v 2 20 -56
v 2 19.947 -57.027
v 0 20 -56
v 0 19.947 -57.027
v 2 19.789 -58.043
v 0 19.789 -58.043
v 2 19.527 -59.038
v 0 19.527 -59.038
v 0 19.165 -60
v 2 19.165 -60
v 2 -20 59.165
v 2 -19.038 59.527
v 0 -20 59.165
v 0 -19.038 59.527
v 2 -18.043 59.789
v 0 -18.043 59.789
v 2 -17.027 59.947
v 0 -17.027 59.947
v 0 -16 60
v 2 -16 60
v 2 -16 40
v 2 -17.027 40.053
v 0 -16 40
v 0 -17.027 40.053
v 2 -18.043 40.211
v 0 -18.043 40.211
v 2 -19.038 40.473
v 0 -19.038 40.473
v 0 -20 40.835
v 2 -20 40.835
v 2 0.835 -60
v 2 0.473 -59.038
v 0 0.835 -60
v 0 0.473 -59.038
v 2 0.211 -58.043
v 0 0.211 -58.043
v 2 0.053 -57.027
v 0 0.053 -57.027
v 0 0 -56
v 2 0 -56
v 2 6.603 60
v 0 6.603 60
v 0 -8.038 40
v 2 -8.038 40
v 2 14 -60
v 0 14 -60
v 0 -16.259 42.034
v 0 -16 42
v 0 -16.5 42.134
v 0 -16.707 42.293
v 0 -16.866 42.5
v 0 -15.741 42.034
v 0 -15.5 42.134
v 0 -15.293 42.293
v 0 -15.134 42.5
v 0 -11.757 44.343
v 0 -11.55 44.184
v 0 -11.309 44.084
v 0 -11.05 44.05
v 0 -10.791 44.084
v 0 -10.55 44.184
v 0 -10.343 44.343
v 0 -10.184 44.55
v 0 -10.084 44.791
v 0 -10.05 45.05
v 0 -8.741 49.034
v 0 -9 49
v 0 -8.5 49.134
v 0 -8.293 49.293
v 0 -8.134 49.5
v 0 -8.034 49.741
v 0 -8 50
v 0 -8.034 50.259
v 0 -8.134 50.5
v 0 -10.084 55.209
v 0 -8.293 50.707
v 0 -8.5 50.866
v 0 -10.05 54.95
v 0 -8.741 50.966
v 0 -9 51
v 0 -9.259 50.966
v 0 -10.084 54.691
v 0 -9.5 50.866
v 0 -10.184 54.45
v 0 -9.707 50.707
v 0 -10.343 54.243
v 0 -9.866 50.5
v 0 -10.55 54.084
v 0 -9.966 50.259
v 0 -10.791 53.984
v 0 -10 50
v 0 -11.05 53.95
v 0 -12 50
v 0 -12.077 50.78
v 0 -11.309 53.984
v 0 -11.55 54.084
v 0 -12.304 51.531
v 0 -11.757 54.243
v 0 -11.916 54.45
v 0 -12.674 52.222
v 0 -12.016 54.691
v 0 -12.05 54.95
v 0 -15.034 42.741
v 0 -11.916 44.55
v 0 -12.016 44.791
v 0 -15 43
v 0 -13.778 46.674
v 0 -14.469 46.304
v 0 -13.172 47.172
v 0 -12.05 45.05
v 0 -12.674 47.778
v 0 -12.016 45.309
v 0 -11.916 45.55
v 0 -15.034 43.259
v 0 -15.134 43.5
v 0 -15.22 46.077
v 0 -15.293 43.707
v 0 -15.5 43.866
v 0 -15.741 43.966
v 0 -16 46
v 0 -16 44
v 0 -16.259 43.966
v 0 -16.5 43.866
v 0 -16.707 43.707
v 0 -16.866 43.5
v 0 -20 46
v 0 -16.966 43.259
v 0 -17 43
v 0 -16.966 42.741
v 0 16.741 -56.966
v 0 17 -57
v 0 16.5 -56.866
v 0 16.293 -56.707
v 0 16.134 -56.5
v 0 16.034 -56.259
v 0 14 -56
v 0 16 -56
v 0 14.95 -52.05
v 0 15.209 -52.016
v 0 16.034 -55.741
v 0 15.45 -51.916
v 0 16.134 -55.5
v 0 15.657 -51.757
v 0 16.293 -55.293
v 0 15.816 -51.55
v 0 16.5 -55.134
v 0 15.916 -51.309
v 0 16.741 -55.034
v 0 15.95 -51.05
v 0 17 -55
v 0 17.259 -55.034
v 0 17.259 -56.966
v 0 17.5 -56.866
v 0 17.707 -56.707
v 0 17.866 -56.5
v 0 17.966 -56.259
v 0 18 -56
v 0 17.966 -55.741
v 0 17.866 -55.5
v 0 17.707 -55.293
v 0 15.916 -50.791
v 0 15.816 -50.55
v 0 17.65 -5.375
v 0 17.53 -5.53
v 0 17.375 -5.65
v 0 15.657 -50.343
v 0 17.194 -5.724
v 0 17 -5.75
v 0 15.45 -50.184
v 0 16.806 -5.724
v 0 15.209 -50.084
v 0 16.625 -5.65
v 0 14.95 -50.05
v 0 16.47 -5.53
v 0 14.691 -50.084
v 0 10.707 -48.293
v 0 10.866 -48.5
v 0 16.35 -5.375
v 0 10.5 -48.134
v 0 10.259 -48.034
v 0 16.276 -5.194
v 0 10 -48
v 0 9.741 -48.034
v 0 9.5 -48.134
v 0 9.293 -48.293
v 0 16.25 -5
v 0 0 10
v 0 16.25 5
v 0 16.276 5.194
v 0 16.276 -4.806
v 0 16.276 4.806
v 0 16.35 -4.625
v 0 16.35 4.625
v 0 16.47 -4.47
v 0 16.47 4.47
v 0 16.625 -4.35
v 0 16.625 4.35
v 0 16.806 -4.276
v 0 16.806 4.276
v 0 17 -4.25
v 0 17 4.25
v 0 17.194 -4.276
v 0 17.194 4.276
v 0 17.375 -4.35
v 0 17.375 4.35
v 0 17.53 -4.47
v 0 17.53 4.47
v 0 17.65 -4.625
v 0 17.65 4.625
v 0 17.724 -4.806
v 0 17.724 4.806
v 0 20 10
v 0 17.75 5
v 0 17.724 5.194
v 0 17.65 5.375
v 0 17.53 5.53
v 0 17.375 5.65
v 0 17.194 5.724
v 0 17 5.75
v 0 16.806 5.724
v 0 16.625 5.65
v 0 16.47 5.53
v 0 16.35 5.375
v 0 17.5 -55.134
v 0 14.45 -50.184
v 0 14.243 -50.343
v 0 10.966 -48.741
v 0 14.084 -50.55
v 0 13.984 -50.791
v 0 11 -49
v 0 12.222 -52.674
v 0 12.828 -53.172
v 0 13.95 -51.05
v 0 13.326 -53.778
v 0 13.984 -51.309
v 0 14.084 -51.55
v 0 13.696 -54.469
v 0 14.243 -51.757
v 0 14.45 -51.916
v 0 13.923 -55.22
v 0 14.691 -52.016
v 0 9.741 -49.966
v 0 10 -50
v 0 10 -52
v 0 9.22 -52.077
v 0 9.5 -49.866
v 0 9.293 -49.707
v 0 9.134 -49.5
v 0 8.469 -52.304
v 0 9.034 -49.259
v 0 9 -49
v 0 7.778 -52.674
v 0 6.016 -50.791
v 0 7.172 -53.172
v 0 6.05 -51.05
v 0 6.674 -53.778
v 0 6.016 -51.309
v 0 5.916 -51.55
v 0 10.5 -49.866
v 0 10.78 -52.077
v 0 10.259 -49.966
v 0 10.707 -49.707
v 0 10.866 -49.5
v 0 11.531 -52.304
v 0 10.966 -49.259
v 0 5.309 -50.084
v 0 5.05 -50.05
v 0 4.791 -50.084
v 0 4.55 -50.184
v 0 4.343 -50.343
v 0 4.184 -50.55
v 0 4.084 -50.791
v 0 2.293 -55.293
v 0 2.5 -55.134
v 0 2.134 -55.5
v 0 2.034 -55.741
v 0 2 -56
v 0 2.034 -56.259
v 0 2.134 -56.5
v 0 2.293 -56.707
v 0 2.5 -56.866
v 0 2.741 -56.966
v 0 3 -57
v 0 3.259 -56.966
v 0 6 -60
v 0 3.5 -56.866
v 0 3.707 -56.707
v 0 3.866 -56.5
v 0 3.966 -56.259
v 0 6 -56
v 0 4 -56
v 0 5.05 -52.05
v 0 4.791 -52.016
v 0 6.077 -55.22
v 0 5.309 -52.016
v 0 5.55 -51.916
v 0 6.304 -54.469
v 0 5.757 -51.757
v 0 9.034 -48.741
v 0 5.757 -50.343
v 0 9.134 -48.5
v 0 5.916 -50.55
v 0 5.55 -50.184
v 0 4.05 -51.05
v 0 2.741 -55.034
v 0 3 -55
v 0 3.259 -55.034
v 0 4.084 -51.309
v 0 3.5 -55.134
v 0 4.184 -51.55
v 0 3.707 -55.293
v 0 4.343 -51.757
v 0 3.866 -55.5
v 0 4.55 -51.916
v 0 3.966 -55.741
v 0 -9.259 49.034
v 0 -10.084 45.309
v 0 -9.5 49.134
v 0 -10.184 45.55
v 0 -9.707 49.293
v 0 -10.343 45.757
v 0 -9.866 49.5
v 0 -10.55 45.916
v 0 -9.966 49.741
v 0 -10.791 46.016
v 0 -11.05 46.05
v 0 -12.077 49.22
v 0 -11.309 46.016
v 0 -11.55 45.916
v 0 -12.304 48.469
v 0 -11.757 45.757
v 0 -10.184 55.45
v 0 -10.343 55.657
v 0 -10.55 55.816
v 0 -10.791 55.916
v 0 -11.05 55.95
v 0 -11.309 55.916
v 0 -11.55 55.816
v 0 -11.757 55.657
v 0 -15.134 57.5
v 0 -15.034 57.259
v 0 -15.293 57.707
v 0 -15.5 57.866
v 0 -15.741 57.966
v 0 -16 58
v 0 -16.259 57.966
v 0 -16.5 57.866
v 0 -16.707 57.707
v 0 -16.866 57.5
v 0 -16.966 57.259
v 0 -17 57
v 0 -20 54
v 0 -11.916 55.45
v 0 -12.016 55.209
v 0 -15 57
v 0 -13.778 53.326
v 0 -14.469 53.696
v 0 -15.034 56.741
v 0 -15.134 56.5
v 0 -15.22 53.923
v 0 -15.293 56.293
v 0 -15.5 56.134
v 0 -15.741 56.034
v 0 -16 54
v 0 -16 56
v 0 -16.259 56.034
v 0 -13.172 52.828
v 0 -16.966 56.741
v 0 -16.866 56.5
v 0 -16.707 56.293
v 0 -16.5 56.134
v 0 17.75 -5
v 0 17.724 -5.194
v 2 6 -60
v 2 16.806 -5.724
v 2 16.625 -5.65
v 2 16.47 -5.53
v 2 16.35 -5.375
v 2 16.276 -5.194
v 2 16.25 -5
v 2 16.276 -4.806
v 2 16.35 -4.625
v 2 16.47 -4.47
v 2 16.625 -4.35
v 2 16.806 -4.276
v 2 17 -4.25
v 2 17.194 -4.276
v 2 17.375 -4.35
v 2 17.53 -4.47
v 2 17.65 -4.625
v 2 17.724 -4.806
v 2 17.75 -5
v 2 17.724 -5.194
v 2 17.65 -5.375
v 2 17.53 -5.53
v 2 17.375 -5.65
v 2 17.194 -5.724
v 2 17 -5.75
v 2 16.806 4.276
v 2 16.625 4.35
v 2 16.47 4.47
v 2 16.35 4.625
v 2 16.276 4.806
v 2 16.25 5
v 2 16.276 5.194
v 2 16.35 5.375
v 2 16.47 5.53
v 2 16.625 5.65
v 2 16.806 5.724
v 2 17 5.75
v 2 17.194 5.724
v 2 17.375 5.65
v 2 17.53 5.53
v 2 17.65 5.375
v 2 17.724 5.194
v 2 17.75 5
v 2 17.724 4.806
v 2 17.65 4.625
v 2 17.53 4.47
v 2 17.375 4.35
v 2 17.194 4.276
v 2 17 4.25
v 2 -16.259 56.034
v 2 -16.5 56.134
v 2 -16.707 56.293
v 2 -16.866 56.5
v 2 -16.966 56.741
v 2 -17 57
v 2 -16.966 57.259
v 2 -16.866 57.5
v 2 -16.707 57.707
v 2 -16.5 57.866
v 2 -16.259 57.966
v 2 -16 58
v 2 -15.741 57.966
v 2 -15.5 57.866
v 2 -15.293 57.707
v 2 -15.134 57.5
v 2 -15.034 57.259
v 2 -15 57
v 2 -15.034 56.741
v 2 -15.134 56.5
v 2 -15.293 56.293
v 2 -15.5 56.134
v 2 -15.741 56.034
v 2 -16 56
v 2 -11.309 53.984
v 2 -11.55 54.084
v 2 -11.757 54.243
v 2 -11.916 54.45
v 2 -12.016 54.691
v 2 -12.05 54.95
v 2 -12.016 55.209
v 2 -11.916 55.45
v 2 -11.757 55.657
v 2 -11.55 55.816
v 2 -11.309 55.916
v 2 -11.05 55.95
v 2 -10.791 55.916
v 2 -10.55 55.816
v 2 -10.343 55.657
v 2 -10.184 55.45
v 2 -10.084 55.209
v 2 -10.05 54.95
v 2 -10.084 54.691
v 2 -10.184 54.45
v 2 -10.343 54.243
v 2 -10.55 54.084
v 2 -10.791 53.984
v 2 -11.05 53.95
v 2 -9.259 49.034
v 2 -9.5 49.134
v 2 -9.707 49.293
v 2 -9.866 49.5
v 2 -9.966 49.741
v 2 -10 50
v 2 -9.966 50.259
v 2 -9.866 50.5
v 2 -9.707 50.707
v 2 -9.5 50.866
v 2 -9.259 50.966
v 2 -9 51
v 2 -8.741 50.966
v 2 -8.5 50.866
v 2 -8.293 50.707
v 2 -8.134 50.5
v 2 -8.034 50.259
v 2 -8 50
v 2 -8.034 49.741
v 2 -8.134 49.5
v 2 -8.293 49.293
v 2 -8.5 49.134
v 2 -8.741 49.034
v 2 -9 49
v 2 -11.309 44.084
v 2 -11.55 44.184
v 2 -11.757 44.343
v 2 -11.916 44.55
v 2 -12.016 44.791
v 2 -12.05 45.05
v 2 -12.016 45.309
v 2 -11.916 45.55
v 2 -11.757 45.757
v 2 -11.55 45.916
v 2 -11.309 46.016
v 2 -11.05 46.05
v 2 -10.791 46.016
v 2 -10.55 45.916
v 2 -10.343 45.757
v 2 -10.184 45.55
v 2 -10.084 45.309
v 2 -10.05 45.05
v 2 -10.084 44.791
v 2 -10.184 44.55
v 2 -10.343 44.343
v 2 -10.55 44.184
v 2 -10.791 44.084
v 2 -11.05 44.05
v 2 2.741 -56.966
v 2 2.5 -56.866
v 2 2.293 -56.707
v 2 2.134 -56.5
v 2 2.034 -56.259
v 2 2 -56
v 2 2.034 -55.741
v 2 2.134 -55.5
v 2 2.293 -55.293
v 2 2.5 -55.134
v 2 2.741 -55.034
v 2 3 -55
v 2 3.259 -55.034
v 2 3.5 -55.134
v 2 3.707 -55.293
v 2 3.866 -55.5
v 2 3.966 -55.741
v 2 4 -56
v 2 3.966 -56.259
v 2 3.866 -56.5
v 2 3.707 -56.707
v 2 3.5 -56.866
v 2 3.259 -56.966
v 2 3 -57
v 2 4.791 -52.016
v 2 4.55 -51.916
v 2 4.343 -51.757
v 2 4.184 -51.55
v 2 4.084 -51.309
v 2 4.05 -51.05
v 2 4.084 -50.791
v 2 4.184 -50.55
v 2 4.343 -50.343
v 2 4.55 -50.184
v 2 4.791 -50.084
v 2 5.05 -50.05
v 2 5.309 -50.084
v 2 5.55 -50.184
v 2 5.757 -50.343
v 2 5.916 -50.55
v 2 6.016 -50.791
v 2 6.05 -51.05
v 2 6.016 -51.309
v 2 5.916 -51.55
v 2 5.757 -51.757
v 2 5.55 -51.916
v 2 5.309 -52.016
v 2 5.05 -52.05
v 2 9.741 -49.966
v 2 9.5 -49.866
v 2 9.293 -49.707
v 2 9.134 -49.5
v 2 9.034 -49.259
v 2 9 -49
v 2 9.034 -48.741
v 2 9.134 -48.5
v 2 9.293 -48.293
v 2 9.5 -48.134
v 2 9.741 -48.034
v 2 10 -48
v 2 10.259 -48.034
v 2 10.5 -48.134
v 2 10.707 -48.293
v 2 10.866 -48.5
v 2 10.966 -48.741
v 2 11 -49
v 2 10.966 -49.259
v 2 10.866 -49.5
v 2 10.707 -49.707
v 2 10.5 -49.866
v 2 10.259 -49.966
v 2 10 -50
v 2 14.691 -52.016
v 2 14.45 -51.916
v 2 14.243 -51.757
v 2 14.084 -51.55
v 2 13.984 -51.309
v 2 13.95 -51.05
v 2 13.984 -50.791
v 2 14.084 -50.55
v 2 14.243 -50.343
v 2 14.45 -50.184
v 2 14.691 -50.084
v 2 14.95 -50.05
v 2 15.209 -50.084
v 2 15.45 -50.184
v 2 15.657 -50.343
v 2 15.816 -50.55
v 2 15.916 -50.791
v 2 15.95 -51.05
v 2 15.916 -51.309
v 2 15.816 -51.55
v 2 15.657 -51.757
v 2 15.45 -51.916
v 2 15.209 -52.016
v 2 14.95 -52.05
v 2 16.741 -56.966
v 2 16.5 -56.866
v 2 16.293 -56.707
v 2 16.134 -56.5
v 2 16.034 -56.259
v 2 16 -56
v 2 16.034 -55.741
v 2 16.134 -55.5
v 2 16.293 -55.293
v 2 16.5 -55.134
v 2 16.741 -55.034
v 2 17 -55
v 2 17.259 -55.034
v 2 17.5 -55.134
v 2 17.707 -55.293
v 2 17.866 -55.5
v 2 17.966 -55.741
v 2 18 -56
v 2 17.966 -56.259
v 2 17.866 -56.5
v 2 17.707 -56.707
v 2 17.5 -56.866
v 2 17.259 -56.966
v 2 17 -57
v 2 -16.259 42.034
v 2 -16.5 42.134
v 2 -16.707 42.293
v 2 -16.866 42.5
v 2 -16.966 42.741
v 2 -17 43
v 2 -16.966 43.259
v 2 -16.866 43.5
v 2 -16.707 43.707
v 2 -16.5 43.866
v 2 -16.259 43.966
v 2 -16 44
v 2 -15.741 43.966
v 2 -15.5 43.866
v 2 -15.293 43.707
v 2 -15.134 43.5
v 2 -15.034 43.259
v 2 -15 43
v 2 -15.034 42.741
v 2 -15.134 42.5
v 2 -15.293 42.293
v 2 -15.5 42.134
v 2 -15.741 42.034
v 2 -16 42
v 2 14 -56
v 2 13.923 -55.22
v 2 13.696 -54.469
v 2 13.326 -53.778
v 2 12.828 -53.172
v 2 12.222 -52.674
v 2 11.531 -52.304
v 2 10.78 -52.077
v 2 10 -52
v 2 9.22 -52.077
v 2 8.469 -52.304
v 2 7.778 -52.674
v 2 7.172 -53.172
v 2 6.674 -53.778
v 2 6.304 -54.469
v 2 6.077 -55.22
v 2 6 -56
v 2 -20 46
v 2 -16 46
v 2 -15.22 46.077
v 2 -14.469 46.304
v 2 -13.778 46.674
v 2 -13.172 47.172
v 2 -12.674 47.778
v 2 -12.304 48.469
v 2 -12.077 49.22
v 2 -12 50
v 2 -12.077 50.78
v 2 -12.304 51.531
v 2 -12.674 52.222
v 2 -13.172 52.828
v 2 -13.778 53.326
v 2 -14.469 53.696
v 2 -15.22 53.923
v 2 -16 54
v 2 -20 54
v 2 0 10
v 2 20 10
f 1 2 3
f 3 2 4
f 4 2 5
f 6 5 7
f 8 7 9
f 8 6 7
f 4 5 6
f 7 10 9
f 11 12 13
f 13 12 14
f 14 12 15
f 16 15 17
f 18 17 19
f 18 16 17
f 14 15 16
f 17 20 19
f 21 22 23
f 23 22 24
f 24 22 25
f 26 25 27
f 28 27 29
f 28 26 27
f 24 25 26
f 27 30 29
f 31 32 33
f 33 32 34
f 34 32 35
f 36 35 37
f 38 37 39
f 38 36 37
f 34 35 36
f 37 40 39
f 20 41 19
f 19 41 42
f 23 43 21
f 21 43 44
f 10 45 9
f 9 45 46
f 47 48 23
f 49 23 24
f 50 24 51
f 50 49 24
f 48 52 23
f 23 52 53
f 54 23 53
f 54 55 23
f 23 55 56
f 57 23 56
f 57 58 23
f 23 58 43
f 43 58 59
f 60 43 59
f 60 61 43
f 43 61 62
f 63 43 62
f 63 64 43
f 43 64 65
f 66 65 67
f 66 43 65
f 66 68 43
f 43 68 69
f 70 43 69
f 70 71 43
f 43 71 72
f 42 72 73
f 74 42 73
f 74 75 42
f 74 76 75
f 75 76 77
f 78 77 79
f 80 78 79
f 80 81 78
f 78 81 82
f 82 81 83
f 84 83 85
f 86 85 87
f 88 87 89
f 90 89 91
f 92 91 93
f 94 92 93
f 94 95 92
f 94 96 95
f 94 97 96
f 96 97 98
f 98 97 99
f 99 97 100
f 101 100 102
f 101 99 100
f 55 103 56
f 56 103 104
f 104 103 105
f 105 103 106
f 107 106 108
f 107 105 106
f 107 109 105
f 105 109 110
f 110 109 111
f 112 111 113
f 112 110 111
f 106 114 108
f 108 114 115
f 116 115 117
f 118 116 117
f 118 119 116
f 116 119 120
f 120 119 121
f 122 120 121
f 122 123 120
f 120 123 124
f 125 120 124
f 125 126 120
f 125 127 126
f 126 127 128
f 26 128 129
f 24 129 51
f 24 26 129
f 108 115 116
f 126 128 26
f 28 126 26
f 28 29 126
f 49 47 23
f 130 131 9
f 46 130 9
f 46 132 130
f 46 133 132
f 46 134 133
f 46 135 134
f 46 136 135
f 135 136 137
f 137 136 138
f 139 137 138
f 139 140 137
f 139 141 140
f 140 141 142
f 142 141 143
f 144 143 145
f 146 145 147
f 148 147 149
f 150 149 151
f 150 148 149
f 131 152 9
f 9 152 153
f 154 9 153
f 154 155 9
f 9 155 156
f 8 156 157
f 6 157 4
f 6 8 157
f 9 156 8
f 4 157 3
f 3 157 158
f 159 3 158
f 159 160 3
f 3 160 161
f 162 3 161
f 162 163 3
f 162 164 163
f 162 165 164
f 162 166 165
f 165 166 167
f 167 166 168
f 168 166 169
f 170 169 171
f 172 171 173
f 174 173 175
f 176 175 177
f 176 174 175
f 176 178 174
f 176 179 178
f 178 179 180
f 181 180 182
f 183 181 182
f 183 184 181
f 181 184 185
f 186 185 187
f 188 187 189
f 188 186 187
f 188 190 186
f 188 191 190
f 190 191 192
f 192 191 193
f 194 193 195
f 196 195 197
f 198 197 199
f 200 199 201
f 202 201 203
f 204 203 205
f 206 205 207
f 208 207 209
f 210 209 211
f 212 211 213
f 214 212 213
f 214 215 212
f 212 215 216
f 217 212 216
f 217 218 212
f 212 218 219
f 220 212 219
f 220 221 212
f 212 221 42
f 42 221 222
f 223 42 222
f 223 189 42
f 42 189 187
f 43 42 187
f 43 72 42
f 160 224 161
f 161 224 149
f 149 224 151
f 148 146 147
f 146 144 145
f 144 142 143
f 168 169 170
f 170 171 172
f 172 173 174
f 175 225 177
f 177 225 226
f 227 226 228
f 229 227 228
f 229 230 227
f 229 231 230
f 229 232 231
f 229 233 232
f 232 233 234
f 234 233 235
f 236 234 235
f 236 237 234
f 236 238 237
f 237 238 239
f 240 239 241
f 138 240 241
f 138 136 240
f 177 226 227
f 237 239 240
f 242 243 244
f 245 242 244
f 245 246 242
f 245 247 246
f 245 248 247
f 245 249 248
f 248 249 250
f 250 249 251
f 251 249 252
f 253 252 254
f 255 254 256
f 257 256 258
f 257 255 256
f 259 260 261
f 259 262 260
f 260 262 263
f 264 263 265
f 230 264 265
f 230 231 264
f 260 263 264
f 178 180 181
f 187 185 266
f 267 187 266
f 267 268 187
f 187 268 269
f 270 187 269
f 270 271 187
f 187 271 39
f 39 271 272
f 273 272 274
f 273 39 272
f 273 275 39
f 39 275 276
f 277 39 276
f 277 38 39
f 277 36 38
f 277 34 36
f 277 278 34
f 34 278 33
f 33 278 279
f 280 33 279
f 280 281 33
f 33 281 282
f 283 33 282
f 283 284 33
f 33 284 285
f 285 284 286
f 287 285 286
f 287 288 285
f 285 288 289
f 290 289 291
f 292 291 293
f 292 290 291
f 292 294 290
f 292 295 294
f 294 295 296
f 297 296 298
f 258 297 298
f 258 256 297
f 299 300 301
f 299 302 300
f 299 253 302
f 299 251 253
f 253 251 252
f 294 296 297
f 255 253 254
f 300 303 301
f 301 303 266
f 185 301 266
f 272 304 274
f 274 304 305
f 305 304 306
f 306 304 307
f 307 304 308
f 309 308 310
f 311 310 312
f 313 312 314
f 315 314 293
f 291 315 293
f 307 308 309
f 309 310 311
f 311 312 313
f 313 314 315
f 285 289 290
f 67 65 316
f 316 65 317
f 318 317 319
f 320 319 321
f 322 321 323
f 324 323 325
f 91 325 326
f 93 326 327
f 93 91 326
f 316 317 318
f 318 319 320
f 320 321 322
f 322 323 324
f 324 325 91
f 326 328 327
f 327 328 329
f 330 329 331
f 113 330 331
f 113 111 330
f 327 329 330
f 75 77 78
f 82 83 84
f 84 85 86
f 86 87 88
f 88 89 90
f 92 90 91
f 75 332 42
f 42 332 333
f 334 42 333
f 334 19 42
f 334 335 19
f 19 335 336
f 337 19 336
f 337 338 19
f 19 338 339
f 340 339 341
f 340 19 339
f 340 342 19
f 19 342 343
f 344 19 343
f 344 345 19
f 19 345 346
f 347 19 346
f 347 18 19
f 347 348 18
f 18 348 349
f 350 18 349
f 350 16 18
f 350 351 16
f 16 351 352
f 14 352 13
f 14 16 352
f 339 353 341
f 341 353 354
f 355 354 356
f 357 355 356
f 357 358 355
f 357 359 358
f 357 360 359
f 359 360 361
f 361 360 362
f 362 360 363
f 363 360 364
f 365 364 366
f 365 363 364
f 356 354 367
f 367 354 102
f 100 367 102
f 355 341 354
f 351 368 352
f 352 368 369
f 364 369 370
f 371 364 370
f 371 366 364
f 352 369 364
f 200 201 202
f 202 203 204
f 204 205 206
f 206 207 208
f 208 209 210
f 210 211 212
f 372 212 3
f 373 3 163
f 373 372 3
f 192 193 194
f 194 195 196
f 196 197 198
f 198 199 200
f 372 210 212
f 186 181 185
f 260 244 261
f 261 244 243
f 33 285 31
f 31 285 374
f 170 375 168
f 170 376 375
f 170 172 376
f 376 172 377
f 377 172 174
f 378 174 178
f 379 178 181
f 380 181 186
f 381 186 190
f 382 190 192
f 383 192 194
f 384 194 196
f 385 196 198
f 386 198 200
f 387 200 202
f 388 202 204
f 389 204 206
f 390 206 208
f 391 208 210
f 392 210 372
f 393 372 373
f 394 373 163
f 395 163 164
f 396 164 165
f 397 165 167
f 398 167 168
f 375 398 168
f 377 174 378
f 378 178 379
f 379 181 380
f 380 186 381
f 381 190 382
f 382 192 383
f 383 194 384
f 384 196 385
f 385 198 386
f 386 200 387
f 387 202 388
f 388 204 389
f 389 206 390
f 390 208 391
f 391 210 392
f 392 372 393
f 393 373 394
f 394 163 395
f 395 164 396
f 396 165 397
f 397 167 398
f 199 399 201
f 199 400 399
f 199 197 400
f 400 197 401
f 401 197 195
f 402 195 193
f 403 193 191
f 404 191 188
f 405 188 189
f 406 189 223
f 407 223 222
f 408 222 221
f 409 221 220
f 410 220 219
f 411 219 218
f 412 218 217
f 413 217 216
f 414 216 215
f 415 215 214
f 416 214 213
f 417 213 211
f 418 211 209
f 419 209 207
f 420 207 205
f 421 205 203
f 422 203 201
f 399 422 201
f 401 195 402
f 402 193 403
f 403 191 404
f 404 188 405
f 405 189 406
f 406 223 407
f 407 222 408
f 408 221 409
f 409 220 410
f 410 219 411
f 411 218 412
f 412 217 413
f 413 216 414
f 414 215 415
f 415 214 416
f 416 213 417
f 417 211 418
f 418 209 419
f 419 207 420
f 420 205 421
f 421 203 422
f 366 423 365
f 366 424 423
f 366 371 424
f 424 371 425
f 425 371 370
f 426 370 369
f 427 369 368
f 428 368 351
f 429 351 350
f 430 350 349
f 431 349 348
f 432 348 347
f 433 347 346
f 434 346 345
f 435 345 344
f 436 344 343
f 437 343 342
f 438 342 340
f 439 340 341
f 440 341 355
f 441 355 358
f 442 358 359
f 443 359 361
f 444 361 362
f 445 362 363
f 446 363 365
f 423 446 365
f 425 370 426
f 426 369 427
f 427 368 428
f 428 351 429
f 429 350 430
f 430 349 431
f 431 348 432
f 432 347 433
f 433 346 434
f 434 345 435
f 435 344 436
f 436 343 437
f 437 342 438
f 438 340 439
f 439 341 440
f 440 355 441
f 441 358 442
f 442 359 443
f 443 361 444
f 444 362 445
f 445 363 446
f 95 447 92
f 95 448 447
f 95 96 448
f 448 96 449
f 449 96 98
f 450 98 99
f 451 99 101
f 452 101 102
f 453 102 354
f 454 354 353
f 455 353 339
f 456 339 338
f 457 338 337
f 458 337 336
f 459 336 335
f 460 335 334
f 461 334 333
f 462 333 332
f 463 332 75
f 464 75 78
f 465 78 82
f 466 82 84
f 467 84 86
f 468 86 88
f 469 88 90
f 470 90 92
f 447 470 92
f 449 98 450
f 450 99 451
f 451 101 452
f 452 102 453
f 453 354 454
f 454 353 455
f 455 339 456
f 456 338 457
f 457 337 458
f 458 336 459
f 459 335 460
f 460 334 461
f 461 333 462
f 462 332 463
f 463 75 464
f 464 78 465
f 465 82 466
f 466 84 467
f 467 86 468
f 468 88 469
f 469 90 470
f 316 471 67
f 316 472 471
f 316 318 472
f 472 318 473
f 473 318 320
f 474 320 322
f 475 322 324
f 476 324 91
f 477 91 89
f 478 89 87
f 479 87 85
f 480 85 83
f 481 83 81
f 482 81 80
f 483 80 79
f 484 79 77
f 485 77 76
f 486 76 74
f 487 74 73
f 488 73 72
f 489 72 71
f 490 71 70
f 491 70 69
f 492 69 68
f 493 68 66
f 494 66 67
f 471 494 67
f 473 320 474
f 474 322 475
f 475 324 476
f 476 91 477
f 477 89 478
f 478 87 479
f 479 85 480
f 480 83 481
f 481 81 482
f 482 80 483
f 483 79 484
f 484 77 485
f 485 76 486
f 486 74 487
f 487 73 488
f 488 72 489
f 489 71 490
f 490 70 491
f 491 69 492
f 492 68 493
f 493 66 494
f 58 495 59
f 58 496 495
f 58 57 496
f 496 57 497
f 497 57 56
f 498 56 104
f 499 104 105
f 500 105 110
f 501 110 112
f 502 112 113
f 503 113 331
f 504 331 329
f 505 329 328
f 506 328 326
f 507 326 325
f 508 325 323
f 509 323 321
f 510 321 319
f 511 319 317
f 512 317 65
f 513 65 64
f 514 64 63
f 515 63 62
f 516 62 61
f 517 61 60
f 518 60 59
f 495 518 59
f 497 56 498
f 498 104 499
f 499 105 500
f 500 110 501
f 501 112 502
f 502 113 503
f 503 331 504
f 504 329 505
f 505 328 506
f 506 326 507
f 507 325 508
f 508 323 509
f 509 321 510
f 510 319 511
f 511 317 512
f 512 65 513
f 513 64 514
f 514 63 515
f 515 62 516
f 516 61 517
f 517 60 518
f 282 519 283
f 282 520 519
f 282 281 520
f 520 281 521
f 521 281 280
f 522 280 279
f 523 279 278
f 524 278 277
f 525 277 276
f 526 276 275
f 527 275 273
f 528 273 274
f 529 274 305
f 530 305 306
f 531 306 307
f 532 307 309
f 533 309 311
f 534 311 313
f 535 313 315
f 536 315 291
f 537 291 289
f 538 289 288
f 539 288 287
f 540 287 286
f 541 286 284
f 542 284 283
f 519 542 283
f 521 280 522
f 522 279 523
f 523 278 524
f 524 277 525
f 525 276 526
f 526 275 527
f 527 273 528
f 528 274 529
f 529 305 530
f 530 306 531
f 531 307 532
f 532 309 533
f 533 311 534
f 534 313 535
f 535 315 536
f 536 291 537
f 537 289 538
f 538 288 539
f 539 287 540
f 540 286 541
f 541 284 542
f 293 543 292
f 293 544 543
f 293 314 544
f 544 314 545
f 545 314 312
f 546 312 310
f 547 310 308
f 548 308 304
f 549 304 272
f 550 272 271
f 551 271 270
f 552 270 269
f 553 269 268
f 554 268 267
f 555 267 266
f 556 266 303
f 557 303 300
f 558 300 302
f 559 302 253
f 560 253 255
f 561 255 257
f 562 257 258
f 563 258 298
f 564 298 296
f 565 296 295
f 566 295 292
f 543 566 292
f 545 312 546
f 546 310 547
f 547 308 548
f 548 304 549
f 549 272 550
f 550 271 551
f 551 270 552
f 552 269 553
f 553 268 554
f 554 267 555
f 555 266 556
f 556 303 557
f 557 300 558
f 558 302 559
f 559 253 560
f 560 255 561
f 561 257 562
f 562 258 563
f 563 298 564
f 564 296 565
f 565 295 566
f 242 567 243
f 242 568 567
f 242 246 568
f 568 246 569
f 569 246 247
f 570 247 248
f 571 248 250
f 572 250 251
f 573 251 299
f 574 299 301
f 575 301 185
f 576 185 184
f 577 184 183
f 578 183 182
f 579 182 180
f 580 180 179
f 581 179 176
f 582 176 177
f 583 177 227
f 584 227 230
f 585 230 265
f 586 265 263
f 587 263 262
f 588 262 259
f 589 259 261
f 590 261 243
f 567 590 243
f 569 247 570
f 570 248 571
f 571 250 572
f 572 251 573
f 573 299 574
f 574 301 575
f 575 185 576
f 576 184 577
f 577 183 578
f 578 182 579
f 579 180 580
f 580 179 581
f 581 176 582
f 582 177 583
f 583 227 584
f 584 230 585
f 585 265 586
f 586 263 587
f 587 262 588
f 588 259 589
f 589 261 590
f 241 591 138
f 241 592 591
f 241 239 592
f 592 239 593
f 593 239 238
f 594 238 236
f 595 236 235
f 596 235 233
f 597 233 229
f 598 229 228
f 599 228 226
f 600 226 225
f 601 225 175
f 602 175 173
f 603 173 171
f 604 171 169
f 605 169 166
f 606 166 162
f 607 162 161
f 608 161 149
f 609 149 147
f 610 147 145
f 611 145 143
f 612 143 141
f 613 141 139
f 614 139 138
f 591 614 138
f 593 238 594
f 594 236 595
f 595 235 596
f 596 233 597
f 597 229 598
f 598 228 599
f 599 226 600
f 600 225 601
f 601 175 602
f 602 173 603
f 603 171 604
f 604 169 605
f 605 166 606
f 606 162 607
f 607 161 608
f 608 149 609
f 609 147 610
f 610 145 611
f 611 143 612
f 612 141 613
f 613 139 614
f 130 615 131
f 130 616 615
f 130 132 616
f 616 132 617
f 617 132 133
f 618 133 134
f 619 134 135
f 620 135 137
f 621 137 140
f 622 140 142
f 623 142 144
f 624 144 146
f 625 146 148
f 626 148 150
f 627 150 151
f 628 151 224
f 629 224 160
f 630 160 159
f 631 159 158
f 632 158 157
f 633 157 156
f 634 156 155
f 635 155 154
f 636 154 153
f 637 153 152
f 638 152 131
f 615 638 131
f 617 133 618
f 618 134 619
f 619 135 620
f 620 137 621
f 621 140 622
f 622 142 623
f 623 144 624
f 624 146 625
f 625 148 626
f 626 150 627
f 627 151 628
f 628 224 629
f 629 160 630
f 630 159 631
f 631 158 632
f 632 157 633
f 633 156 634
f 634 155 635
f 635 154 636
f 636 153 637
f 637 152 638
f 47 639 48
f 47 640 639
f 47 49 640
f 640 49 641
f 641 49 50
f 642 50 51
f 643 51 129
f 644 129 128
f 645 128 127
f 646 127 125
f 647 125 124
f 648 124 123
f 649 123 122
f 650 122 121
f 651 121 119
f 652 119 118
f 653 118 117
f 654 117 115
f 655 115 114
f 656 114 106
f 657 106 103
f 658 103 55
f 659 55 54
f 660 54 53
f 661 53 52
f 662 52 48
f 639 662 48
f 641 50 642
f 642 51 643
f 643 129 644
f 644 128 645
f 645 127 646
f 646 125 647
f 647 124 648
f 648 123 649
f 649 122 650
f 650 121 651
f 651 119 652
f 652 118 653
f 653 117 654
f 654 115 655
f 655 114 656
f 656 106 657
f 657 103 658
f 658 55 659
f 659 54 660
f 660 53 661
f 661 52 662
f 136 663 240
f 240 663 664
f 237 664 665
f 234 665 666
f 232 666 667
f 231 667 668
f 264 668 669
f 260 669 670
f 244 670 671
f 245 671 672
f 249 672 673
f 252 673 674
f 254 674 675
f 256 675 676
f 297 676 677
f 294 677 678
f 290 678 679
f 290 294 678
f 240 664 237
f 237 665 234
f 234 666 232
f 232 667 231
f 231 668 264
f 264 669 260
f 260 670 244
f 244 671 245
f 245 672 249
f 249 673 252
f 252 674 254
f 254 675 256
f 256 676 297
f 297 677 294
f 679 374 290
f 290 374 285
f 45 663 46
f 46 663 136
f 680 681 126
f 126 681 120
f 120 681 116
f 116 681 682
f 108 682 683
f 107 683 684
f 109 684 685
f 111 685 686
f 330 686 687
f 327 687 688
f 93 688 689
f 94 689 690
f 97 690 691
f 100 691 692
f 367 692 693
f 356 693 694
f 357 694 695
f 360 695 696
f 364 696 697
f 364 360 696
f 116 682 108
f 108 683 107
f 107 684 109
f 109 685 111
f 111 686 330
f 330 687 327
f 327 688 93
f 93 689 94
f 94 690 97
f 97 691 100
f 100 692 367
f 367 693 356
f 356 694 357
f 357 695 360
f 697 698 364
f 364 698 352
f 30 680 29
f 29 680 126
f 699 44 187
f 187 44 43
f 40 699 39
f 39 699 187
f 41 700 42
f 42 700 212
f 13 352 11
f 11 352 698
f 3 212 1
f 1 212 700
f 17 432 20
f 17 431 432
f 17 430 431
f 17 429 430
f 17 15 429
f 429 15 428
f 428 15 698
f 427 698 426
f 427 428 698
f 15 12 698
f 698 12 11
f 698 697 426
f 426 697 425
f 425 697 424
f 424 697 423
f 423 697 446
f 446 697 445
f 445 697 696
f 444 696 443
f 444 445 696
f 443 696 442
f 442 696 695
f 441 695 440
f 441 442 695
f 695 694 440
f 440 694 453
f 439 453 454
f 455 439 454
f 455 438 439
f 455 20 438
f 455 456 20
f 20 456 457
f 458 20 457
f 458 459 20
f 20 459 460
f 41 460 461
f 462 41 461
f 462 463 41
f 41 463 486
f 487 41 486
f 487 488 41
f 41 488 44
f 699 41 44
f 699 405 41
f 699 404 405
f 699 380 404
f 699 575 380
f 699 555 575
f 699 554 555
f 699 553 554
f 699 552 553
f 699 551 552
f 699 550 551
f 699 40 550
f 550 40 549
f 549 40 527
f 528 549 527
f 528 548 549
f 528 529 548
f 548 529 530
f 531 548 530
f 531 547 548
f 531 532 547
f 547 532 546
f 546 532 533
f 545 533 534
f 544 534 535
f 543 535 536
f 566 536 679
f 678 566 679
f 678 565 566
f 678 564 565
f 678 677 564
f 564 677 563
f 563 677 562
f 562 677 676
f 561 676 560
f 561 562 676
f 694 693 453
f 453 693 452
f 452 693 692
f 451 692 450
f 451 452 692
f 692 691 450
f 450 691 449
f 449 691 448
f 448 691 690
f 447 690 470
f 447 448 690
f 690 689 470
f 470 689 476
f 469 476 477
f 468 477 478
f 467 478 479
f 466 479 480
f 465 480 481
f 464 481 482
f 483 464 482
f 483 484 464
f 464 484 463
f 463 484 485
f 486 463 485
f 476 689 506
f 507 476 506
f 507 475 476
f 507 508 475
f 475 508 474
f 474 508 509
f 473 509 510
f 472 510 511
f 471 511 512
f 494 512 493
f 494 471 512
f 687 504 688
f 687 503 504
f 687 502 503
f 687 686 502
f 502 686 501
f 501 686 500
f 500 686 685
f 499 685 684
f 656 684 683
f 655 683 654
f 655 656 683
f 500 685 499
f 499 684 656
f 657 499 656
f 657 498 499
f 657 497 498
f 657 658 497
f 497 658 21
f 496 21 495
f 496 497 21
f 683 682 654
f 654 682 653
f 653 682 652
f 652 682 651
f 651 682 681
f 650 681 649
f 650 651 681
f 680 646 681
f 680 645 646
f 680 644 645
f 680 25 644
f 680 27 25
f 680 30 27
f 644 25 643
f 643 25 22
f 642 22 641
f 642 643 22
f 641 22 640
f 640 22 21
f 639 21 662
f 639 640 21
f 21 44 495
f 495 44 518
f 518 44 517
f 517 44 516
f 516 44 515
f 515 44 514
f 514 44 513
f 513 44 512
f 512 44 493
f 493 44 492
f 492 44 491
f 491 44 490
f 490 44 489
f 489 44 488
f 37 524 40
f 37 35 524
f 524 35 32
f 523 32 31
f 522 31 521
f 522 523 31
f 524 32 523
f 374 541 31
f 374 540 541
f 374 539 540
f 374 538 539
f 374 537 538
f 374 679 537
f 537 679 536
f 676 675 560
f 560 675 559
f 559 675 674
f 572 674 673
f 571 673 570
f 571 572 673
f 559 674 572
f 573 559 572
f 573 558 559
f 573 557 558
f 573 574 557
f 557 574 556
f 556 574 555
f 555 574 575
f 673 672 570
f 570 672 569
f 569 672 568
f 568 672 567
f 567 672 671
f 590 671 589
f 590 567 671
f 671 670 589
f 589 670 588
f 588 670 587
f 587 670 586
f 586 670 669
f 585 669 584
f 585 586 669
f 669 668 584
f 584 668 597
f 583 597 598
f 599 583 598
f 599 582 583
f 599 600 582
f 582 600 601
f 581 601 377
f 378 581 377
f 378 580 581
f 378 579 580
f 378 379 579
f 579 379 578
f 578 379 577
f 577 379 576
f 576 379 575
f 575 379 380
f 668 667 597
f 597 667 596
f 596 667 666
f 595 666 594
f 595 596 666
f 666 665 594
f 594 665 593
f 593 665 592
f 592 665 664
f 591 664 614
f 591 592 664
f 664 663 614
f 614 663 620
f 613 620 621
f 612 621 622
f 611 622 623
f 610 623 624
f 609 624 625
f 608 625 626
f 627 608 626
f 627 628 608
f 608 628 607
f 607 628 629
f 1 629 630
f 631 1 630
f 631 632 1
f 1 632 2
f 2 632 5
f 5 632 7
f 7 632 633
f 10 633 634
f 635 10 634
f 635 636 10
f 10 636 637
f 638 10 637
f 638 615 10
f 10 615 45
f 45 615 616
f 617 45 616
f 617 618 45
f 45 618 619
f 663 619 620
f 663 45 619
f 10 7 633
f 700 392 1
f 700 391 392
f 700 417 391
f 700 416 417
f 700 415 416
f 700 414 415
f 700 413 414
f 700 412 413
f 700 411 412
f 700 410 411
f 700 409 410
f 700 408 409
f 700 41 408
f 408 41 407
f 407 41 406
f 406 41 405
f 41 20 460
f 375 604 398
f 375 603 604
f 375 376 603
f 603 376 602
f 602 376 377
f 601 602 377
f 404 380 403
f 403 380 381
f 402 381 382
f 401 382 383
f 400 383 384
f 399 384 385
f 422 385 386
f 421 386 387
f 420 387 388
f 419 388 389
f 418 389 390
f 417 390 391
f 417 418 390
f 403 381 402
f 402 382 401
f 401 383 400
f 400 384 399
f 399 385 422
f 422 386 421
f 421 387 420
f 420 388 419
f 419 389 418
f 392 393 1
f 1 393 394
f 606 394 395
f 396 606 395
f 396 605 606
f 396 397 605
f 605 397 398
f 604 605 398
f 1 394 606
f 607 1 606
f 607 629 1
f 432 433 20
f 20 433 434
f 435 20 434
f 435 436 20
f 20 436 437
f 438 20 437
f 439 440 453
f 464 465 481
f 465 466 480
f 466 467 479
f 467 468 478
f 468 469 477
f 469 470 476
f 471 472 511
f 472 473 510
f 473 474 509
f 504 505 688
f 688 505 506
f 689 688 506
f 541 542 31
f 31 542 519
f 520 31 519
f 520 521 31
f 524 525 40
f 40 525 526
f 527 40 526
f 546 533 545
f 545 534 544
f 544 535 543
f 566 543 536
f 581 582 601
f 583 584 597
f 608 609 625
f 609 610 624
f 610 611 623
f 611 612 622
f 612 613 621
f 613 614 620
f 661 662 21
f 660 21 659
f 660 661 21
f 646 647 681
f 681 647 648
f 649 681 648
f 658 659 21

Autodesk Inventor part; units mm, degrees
ref_plane "YZ Plane" through (0, 0, 0) normal (1, 0, 0) x (0, 1, 0)
ref_plane "XZ Plane" through (0, 0, 0) normal (0, 1, 0) x (-1, 0, 0)
ref_plane "XY Plane" through (0, 0, 0) normal (0, 0, 1) x (1, 0, 0)
sketch "スケッチ1" plane through (0, 0, 0) normal (1, 0, 0) x (0, 1, 0)
  line L0 (-20, 60) -> (20, 60)
  line L1 (20, 60) -> (20, -60)
  line L2 (20, -60) -> (-20, -60)
  line L3 (-20, -60) -> (-20, 60)
  point P0 (0, 0)
  dimension "d0" = 40
  dimension "d2" = 20
  dimension "d3" = 120
  dimension "d4" = 60
extrude "押し出し1" add sketch "スケッチ1" along normal blind 2
sketch "スケッチ2" plane through (2, 0, 0) normal (1, 0, 0) x (0, 0, -1)
  line L0 (-60, 20) -> (-60, -20) projected
  line L1 (-60, -20) -> (60, -20) projected
  line L2 (60, -20) -> (60, 20) projected
  line L3 (60, 20) -> (-60, 20) projected
  line L4 (-60, 6.6025) -> (-10, 20)
  line L5 (-40, -20) -> (-40, -8.0385)
  line L6 (-40, -8.0385) -> (-10, 0)
  line L7 (-10, 0) -> (60, 0)
  point P0 (0, 0)
  dimension "d7" = 20
  dimension "d8" = 20
  dimension "d9" = 70
  dimension "d10" = 15
  dimension "d11" = 70
extrude "押し出し2" cut sketch "スケッチ2" against normal blind 2 contours L4 L3 L2 L7 L6 L5 L1 L0 keep common part
sketch "スケッチ3" plane through (2, 0, 0) normal (1, 0, 0) x (0, 0, -1)
  line L0 (60, 0) -> (-10, 0) projected
  line L1 (60, 0) -> (60, 20) projected
  line L2 (-60, 6.6025) -> (-60, -20) projected
  line L3 (-60, -20) -> (-40, -20) projected
  line L4 (-54, -20) -> (-46, -20)
  line L5 (-46, -20) -> (-46, -16)
  line L6 (-54, -16) -> (-54, -20)
  line L7 (60, 14) -> (56, 14)
  line L8 (56, 6) -> (60, 6)
  line L9 (60, 6) -> (60, 14)
  arc A0 (-46, -16) -> (-54, -16) centre (-50, -16) ccw
  arc A1 (56, 14) -> (56, 6) centre (56, 10) ccw
  point P0 (0, 0)
  dimension "d14" = 8
  dimension "d16" = 8
  dimension "d19" = 4
  dimension "d20" = 4
  dimension "d21" = 10
  dimension "d22" = 4
  dimension "d23" = 4
  dimension "d24" = 10
  dimension "d26" = 4
  dimension "d27" = 4
extrude "押し出し3" cut sketch "スケッチ3" against normal blind 2
sketch "スケッチ4" plane through (2, 0, 0) normal (1, 0, 0) x (0, 0, -1)
  arc A0 (-46, -16) -> (-54, -16) centre (-50, -16) ccw projected
  arc A1 (56, 14) -> (56, 6) centre (56, 10) ccw projected
  circle A2 centre (-43, -16) radius 1
  circle A3 centre (56, 17) radius 1
  point P0 (0, 0)
  dimension "d30" = 2
  dimension "d32" = 7
  dimension "d33" = 0
  dimension "d34" = 7
  dimension "d35" = 0
hole "穴1" at (2, 17, -56) at (2, -16, 43) direction (-1, 0, 0) diameter 2 end through all
pattern_circular "円形状パターン1" count 5 over 180 about axis through (2, 10, -56) along (1, 0, 0) of "穴1"
pattern_circular "円形状パターン2" count 5 over 180 about axis through (2, -16, 50) along (1, 0, 0) of "穴1"
sketch "スケッチ5" plane through (2, 0, 0) normal (1, 0, 0) x (0, 0, -1)
  line L0 (60, 14) -> (60, 20) projected
  line L1 (60, 20) -> (-10, 20) projected
  circle A0 centre (-5, 17) radius 1
  circle A1 centre (5, 17) radius 1
  point P0 (0, 0)
  dimension "d49" = 10
  dimension "d51" = 3
  dimension "d52" = 3
  dimension "d53" = 2
  dimension "d54" = 55
hole "穴2" at (2, 17, -5) at (2, 17, 5) direction (-1, 0, 0) diameter 1.5 end through all
sketch "スケッチ6" plane through (2, 0, 0) normal (1, 0, 0) x (0, 0, -1)
  circle A0 centre (5, 17) radius 0.75 projected
  circle A1 centre (-5, 17) radius 0.75 projected
  circle A2 centre (-57, -16) radius 1 projected
  circle A3 centre (-54.9497, -11.0503) radius 1 projected
  circle A4 centre (-50, -9) radius 1 projected
  circle A5 centre (-45.0503, -11.0503) radius 1 projected
  circle A6 centre (56, 3) radius 1 projected
  circle A7 centre (51.0503, 5.0503) radius 1 projected
  circle A8 centre (49, 10) radius 1 projected
  circle A9 centre (51.0503, 14.9497) radius 1 projected
  circle A10 centre (56, 17) radius 1 projected
  circle A11 centre (-43, -16) radius 1 projected
  line L0 (56, 14) -> (60, 14) projected
  line L1 (60, 14) -> (60, 20) projected
  line L2 (60, 20) -> (-10, 20) projected
  line L3 (-60, 6.6025) -> (-10, 20) projected
  line L4 (-60, 6.6025) -> (-60, -20) projected
  line L5 (-60, -20) -> (-54, -20) projected
  line L6 (-54, -20) -> (-54, -16) projected
  arc A12 (-46, -16) -> (-54, -16) centre (-50, -16) ccw projected
  line L7 (-46, -16) -> (-46, -20) projected
  line L8 (-46, -20) -> (-40, -20) projected
  line L9 (-40, -8.0385) -> (-40, -20) projected
  line L10 (-10, 0) -> (-40, -8.0385) projected
  line L11 (60, 0) -> (-10, 0) projected
  line L12 (60, 0) -> (60, 6) projected
  line L13 (60, 6) -> (56, 6) projected
  arc A13 (56, 14) -> (56, 6) centre (56, 10) ccw projected
  arc A14 (-40.8348, -20) -> (-40, -16) centre (-50, -16) ccw
  arc A15 (-60, -16) -> (-59.1652, -20) centre (-50, -16) ccw
  arc A16 (60, 19.1652) -> (56, 20) centre (56, 10) ccw
  arc A17 (56, 0) -> (60, 0.8348) centre (56, 10) ccw
  point P0 (0, 0)
  dimension "d64" = 10
extrude "押し出し4" cut sketch "スケッチ6" against normal blind 2 contours A13 L13 L12 A17 L11 L10 L9 A14 L8 L7 A12 L6 L5 A15 L4 L3 L2 A16 L1 L0 keep common part
properties part number "Leg_Link_Flame" material "アルミニウム 6061"
